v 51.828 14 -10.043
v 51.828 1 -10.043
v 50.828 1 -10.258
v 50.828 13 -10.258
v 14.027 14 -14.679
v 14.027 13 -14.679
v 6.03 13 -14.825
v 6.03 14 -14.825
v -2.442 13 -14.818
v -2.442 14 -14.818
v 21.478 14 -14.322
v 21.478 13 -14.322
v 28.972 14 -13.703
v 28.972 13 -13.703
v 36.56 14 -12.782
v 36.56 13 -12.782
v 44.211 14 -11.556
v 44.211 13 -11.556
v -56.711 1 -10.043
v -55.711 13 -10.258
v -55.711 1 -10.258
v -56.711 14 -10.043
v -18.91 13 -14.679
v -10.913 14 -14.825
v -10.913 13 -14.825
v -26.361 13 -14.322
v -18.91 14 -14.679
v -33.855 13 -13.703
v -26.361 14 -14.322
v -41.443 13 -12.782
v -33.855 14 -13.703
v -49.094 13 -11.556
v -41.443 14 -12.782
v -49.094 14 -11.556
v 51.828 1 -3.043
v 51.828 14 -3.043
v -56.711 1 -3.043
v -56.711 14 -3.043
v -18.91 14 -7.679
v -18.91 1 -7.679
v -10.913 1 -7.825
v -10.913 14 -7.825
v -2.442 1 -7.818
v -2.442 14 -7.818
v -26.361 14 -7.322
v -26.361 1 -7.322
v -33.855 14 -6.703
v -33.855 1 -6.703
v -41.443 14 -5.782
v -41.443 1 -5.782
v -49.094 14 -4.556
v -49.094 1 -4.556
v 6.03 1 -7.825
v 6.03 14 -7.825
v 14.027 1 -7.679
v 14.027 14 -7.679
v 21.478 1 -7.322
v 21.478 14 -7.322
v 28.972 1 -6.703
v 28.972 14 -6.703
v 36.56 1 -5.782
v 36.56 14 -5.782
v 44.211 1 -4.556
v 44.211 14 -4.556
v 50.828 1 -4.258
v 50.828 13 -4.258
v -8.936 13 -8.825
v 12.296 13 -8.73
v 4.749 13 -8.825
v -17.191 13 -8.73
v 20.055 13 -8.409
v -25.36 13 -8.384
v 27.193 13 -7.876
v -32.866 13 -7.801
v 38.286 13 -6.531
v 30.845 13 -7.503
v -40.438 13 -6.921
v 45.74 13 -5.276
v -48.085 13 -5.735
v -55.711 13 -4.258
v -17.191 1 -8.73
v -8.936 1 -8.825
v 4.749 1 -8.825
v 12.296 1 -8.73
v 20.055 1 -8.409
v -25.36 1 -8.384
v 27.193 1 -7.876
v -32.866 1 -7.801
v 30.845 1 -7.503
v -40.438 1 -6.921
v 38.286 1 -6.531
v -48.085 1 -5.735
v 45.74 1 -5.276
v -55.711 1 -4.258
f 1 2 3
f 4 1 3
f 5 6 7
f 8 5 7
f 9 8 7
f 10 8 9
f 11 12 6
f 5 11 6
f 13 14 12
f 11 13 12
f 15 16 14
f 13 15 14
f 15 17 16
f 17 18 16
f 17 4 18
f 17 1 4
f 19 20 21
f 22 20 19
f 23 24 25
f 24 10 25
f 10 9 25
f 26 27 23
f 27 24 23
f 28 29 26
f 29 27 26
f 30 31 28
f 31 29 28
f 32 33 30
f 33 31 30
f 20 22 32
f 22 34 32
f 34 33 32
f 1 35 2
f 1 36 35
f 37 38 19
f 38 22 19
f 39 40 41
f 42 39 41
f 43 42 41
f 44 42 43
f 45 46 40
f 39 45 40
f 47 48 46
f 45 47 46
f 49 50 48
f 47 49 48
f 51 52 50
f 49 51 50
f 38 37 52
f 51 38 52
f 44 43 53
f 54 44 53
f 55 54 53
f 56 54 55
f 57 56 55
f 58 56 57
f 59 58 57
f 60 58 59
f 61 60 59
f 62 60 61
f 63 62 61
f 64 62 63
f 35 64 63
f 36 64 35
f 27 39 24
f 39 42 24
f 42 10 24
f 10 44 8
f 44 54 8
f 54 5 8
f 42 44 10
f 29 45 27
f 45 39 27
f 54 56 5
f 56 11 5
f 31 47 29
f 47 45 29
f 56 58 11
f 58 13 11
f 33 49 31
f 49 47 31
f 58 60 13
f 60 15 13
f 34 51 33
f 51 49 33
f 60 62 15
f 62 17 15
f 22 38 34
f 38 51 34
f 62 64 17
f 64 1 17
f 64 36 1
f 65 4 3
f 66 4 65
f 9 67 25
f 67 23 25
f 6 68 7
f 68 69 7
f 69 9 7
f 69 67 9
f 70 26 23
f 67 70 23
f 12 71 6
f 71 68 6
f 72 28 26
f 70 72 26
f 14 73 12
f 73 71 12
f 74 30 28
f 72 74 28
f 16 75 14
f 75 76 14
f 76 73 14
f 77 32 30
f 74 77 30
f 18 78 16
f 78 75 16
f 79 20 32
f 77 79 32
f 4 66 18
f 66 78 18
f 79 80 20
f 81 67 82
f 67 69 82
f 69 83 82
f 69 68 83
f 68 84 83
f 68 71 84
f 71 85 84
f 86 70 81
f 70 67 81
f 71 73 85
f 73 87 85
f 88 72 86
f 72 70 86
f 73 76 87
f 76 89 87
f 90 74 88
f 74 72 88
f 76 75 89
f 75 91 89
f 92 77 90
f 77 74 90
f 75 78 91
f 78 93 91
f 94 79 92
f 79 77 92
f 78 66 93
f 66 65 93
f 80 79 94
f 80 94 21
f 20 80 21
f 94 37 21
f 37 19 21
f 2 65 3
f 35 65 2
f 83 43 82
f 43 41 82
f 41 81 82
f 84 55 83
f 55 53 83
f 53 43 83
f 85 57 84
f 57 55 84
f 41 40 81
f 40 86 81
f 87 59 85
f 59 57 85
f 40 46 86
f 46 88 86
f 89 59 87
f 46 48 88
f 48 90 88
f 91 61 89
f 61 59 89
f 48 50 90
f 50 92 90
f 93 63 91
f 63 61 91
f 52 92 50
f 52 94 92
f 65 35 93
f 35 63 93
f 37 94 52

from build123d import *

# Parameters (mm, degrees)
BOSS_EXTRUDE1_DEPTH     = 14
CUT_EXTRUDE1_START      = -1
CUT_EXTRUDE1_DEPTH      = 12
SKETCH5_R               = 2
CUT_EXTRUDE2_DEPTH      = 10
SKETCH6_W               = 117.319125092
SKETCH6_H               = 10.762389646
CUT_EXTRUDE3_DEPTH      = 61.267639965
CUT_EXTRUDE3_DEPTH_BACK = 61.267639965


with BuildPart() as part:
    # Sketch1 → Boss-Extrude1 (new body)
    with BuildSketch(Plane(origin=(0, 0, 0), x_dir=(1, 0, 0), z_dir=(0, 1, 0))):
        with BuildLine():
            Line((-56.7108806, 8.042770274), (-56.7108806, 6.805307476))
            Line((-56.7108806, 6.805307476), (-32.823491302, 6.805307476))
            add(Edge.make_bspline(
                [(-32.823491302, 6.805307476), (-32.296255898, 6.856181615), (-26.989208291, 7.346453988), (-16.87934757, 7.860332352), (-7.605819721, 7.844934175), (-2.44151388, 7.817702683)],
                knots=[0.442922252, 0.442922252, 0.442922252, 0.442922252, 0.47203113, 0.735860593, 1, 1, 1, 1], degree=3))
            add(Edge.make_bspline(
                [(27.940463543, 6.805307476), (27.413228139, 6.856181615), (22.106180532, 7.346453988), (11.99631981, 7.860332352), (2.722791962, 7.844934175), (-2.44151388, 7.817702683)],
                knots=[0.442922252, 0.442922252, 0.442922252, 0.442922252, 0.47203113, 0.735860593, 1, 1, 1, 1], degree=3))
            Line((27.940463543, 6.805307476), (51.827852841, 6.805307476))
            Line((51.827852841, 6.805307476), (51.827852841, 8.042770274))
            add(Edge.make_bspline(
                [(51.827852841, 8.042770274), (43.440678216, 9.870534091), (30.144344491, 11.93787877), (11.99631981, 12.860332352), (2.722791962, 12.844934175), (-2.44151388, 12.817702683)],
                knots=[0, 0, 0, 0, 0.47203113, 0.735860593, 1, 1, 1, 1], degree=3))
            add(Edge.make_bspline(
                [(-56.7108806, 8.042770274), (-48.323705975, 9.870534091), (-35.02737225, 11.93787877), (-16.87934757, 12.860332352), (-7.605819721, 12.844934175), (-2.44151388, 12.817702683)],
                knots=[0, 0, 0, 0, 0.47203113, 0.735860593, 1, 1, 1, 1], degree=3))
        make_face()
        with BuildLine():
            Line((-32.823491302, 6.805307476), (-56.7108806, 6.805307476))
            Line((-56.7108806, 6.805307476), (-56.7108806, 3.042770274))
            add(Edge.make_bspline(
                [(-56.7108806, 3.042770274), (-48.840920262, 4.757820859), (-40.845933501, 6.031203848), (-32.823491302, 6.805307476)],
                knots=[0, 0, 0, 0, 0.442922252, 0.442922252, 0.442922252, 0.442922252], degree=3))
        make_face()
        with BuildLine():
            Line((-56.7108806, 10.042770274), (-56.7108806, 8.042770274))
            add(Edge.make_bspline(
                [(-56.7108806, 8.042770274), (-48.323705975, 9.870534091), (-35.02737225, 11.93787877), (-16.87934757, 12.860332352), (-7.605819721, 12.844934175), (-2.44151388, 12.817702683)],
                knots=[0, 0, 0, 0, 0.47203113, 0.735860593, 1, 1, 1, 1], degree=3))
            add(Edge.make_bspline(
                [(51.827852841, 8.042770274), (43.440678216, 9.870534091), (30.144344491, 11.93787877), (11.99631981, 12.860332352), (2.722791962, 12.844934175), (-2.44151388, 12.817702683)],
                knots=[0, 0, 0, 0, 0.47203113, 0.735860593, 1, 1, 1, 1], degree=3))
            Line((51.827852841, 8.042770274), (51.827852841, 10.042770274))
            add(Edge.make_bspline(
                [(51.827852841, 10.042770274), (43.440678216, 11.870534091), (30.144344491, 13.93787877), (11.99631981, 14.860332352), (2.722791962, 14.844934175), (-2.44151388, 14.817702683)],
                knots=[0, 0, 0, 0, 0.47203113, 0.735860593, 1, 1, 1, 1], degree=3))
            add(Edge.make_bspline(
                [(-56.7108806, 10.042770274), (-48.323705975, 11.870534091), (-35.02737225, 13.93787877), (-16.87934757, 14.860332352), (-7.605819721, 14.844934175), (-2.44151388, 14.817702683)],
                knots=[0, 0, 0, 0, 0.47203113, 0.735860593, 1, 1, 1, 1], degree=3))
        make_face()
        with BuildLine():
            Line((51.827852841, 6.805307476), (27.940463543, 6.805307476))
            add(Edge.make_bspline(
                [(51.827852841, 3.042770274), (43.957892503, 4.757820859), (35.962905742, 6.031203848), (27.940463543, 6.805307476)],
                knots=[0, 0, 0, 0, 0.442922252, 0.442922252, 0.442922252, 0.442922252], degree=3))
            Line((51.827852841, 3.042770274), (51.827852841, 6.805307476))
        make_face()
    extrude(amount=BOSS_EXTRUDE1_DEPTH)

    # Sketch2 → Cut-Extrude1 (cut)
    with BuildSketch(Plane(origin=(0, 14, 0), x_dir=(1, 0, 0), z_dir=(0, 1, 0)).offset(CUT_EXTRUDE1_START)):
        with BuildLine():
            Line((-55.7108806, 10.258170898), (-55.7108806, 4.258086623))
            add(Edge.make_bspline(
                [(-55.7108806, 4.258086623), (-50.342859001, 5.400468361), (-41.88238795, 6.862517021), (-30.478251076, 8.08618105), (-21.960755969, 8.606039162), (-12.680255084, 8.866102662), (-2.488255396, 8.788816201), (7.839601208, 8.866738732), (17.143204354, 8.604590131), (25.594666904, 8.081695492), (36.910484771, 6.875367198), (45.349986498, 5.423872017), (50.827852841, 4.258091684)],
                knots=[0.009365711, 0.009365711, 0.009365711, 0.009365711, 0.160113822, 0.245011966, 0.32430349, 0.394459254, 0.499999871, 0.60425614, 0.678146052, 0.755618705, 0.836798939, 0.990634118, 0.990634118, 0.990634118, 0.990634118], degree=3))
            Line((50.827852841, 4.258091684), (50.827852841, 10.258170898))
            add(Edge.make_bspline(
                [(50.827852841, 10.258170898), (42.763137338, 11.97497257), (29.804113131, 13.955172533), (11.99631981, 14.860332352), (2.722791962, 14.844934175), (-2.44151388, 14.817702683)],
                knots=[0.01874757, 0.01874757, 0.01874757, 0.01874757, 0.47203113, 0.735860593, 1, 1, 1, 1], degree=3))
            add(Edge.make_bspline(
                [(-2.44151388, 14.817702683), (-7.605819721, 14.844934175), (-16.87934757, 14.860332352), (-34.68714089, 13.955172533), (-47.646165097, 11.97497257), (-55.7108806, 10.258170898)],
                knots=[0, 0, 0, 0, 0.264139407, 0.52796887, 0.98125243, 0.98125243, 0.98125243, 0.98125243], degree=3))
        make_face()
        with BuildLine():
            Line((-2.44151388, 17.910861514), (-2.44151388, 14.817702683))
            add(Edge.make_bspline(
                [(50.827852841, 10.258170898), (42.763137338, 11.97497257), (29.804113131, 13.955172533), (11.99631981, 14.860332352), (2.722791962, 14.844934175), (-2.44151388, 14.817702683)],
                knots=[0.01874757, 0.01874757, 0.01874757, 0.01874757, 0.47203113, 0.735860593, 1, 1, 1, 1], degree=3))
            Line((50.827852841, 10.258170898), (50.827852841, 19.353755181))
            Line((50.827852841, 19.353755181), (-2.44151388, 17.910861514))
        make_face()
        with BuildLine():
            Line((-55.7108806, 16.467967847), (-55.7108806, 10.258170898))
            add(Edge.make_bspline(
                [(-2.44151388, 14.817702683), (-7.605819721, 14.844934175), (-16.87934757, 14.860332352), (-34.68714089, 13.955172533), (-47.646165097, 11.97497257), (-55.7108806, 10.258170898)],
                knots=[0, 0, 0, 0, 0.264139407, 0.52796887, 0.98125243, 0.98125243, 0.98125243, 0.98125243], degree=3))
            Line((-2.44151388, 14.817702683), (-2.44151388, 17.910861514))
            Line((-2.44151388, 17.910861514), (-55.7108806, 16.467967847))
        make_face()
    extrude(amount=-CUT_EXTRUDE1_DEPTH, mode=Mode.SUBTRACT)

    # Sketch5 → Cut-Extrude2 (cut)
    with BuildSketch(Plane(origin=(0, 1, 0), x_dir=(1, 0, 0), z_dir=(0, 1, 0))):
        with Locations((-2.44151388, 14.817702683)):
            Circle(SKETCH5_R)
    extrude(amount=-CUT_EXTRUDE2_DEPTH, mode=Mode.SUBTRACT)

    # Sketch6 → Cut-Extrude3 (cut, two sides)
    with BuildSketch(Plane.XY) as cut_extrude3_sk:
        with Locations((-0.730172647, -4.381194823)):
            Rectangle(SKETCH6_W, SKETCH6_H)
    extrude(amount=CUT_EXTRUDE3_DEPTH, mode=Mode.SUBTRACT)
    extrude(cut_extrude3_sk.sketch, amount=-CUT_EXTRUDE3_DEPTH_BACK, mode=Mode.SUBTRACT)


solid = part.part
